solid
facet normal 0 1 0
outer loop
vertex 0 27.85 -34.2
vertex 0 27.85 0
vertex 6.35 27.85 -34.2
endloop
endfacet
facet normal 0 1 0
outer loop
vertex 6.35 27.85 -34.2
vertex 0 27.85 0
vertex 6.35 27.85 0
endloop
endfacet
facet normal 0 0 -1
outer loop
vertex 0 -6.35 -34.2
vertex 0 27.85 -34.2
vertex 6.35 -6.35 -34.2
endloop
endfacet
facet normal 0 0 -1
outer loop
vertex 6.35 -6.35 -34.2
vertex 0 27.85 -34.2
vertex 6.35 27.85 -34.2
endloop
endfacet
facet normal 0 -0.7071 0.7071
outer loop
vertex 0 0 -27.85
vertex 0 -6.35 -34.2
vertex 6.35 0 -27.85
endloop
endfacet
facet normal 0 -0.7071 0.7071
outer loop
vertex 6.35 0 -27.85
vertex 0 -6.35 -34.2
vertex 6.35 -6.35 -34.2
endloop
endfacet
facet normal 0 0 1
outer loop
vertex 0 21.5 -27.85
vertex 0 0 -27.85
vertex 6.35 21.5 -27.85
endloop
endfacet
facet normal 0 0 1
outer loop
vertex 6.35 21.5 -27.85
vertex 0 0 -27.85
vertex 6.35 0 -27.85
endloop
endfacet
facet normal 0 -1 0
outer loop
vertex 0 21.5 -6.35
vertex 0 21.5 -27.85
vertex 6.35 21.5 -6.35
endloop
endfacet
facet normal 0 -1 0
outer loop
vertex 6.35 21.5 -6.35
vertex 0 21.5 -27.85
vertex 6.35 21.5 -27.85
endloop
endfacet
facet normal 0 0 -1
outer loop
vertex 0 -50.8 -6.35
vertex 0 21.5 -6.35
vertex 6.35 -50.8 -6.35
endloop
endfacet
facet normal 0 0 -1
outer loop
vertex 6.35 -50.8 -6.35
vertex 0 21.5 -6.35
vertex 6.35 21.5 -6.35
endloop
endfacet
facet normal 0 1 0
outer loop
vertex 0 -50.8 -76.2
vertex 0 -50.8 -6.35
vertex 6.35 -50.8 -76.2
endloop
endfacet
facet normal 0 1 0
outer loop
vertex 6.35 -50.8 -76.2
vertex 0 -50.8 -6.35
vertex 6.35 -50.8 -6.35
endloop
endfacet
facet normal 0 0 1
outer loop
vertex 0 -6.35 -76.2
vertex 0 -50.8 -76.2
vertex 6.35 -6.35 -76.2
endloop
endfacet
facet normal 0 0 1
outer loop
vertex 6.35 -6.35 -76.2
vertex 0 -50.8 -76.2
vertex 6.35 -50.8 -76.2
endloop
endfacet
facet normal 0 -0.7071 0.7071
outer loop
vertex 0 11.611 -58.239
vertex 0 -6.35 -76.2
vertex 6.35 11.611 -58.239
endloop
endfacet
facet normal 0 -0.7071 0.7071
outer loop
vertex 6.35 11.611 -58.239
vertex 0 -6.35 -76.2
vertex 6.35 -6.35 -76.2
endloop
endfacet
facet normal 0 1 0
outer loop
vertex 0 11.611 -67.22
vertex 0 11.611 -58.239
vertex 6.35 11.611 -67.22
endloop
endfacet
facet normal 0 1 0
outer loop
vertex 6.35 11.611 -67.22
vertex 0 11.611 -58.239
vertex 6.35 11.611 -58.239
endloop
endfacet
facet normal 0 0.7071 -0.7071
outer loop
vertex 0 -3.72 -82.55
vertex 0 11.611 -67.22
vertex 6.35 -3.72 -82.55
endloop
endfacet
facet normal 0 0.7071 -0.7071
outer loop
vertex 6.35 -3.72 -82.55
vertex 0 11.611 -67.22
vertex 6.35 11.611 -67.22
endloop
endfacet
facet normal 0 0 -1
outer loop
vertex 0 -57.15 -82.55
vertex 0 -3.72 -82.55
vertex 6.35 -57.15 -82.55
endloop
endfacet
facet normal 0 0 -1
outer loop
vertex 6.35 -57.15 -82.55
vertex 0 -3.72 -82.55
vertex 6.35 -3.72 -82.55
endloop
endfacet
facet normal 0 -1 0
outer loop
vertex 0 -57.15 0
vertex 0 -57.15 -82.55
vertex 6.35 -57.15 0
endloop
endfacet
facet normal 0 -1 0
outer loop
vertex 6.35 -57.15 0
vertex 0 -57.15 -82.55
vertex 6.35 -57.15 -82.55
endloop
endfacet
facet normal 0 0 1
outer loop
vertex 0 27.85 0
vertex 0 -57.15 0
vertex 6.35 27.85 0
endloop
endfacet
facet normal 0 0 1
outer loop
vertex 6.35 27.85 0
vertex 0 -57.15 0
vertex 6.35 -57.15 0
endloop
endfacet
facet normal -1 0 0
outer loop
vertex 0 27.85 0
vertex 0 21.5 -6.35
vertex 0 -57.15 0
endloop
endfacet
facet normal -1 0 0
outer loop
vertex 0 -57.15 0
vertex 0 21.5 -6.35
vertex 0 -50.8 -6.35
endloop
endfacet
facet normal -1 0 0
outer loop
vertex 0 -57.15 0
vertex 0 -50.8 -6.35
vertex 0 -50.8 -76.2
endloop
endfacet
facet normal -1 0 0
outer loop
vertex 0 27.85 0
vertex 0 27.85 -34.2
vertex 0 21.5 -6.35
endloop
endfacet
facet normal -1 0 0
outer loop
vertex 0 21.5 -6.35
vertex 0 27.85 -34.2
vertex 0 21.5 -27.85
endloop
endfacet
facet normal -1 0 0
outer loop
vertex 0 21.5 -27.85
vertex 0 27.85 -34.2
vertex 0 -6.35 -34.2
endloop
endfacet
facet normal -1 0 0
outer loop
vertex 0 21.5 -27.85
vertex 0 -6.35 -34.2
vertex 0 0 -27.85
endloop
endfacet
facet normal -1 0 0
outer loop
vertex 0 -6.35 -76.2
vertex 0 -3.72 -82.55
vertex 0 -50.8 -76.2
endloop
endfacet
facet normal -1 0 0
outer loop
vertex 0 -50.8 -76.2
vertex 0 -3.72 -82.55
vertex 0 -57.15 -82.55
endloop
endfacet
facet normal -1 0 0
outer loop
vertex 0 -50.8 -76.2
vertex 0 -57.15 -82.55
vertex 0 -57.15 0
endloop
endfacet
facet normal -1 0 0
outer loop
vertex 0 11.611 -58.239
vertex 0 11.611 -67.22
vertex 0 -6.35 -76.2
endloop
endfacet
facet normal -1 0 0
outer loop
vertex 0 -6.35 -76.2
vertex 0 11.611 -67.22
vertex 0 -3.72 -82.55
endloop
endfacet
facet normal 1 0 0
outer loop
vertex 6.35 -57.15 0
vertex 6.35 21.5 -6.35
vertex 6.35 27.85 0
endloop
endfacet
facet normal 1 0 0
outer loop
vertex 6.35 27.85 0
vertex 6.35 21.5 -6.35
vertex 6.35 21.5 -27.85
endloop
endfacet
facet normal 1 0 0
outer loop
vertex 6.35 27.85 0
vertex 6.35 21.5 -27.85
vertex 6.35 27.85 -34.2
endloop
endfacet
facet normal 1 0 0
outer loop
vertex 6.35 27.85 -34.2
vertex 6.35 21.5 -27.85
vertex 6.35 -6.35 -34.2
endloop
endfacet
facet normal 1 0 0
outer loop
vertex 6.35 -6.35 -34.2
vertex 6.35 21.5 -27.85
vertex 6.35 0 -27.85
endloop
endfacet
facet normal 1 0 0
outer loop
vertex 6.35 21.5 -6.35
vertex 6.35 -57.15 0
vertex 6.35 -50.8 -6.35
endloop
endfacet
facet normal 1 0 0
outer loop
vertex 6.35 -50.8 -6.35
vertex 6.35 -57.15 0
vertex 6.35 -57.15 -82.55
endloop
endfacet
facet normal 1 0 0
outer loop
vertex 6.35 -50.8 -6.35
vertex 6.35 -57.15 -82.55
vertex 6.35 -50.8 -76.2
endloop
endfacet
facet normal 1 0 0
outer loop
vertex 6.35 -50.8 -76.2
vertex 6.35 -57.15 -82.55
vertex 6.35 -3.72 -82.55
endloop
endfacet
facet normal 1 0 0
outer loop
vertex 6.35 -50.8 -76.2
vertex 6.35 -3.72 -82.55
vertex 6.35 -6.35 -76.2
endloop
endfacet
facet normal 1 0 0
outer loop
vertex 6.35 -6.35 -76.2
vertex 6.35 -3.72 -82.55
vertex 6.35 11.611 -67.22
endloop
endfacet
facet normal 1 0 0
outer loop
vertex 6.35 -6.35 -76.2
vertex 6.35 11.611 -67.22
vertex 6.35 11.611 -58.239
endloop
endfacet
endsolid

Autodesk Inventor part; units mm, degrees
ref_plane "YZ Plane" through (0, 0, 0) normal (1, 0, 0) x (0, 1, 0)
ref_plane "XZ Plane" through (0, 0, 0) normal (0, 1, 0) x (-1, 0, 0)
ref_plane "XY Plane" through (0, 0, 0) normal (0, 0, 1) x (1, 0, 0)
sketch "Sketch1" plane through (0, 0, 0) normal (1, 0, 0) x (0, 1, 0)
  line L0 (0, 0) -> (21.5, 0)
  line L1 (21.5, 0) -> (21.5, -6.35) construction
  line L2 (21.5, -27.85) -> (0, -27.85)
  line L3 (0, -27.85) -> (0, -6.35) construction
  line L4 (21.5, 0) -> (27.85, 0)
  line L5 (27.85, 0) -> (27.85, -34.2)
  line L6 (-6.35, -34.2) -> (-6.35, -6.35) construction
  line L7 (-6.35, 0) -> (0, 0)
  line L8 (27.85, -34.2) -> (-6.35, -34.2)
  line L9 (-6.35, 0) -> (-57.15, 0)
  line L10 (-57.15, 0) -> (-57.15, -82.55)
  line L11 (-6.35, -6.35) -> (-50.8, -6.35)
  line L12 (-50.8, -6.35) -> (-50.8, -76.2)
  line L13 (-6.35, -6.35) -> (-6.35, 0) construction
  line L14 (-57.15, -82.55) -> (-3.7197, -82.55)
  line L15 (-50.8, -76.2) -> (-6.35, -76.2)
  line L16 (-6.35, -76.2) -> (11.6105, -58.2395)
  line L17 (-3.7197, -82.55) -> (11.6105, -67.2197)
  line L18 (11.6105, -58.2395) -> (11.6105, -67.2197)
  line L19 (-6.35, -34.2) -> (-6.35, -76.2) construction
  line L20 (0, -6.35) -> (21.5, -6.35)
  line L21 (0, -6.35) -> (-6.35, -6.35)
  line L22 (0, -6.35) -> (0, 0) construction
  line L23 (21.5, -6.35) -> (21.5, -27.85)
  line L24 (0, -27.85) -> (-6.35, -34.2)
  dimension "d2" = 6.35
  dimension "d4" = 6.35
  dimension "d23" = 6.35
  dimension "d24" = 50.8
  dimension "d25" = 82.55
  dimension "d26" = 6.35
  dimension "d27" = 6.35
  dimension "d28" = 6.35
  dimension "d30" = 6.35
  dimension "d31" = 25.4
  dimension "d32" = 135
  dimension "d33" = 21.5
  dimension "d34" = 6.35
  dimension "d35" = 21.5
  dimension "d36" = 24.0395
extrude "Extrusion1" add sketch "Sketch1" along normal blind 6.35
equation "\"d35\" = d33"
properties part number "Main"
